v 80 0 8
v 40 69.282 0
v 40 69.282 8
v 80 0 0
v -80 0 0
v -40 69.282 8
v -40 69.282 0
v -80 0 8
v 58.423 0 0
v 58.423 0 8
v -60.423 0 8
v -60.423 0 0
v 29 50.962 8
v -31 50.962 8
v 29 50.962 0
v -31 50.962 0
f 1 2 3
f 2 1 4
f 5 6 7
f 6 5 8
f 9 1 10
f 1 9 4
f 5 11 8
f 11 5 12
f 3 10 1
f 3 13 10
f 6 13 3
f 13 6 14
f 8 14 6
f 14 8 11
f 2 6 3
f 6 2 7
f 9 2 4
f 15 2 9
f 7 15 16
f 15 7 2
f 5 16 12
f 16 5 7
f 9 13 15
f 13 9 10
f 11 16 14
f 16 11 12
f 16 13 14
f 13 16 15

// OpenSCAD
r         = 80;
thickness =  8;

module half_hex() {
    linear_extrude(thickness) {
        polygon([
            [-r, 0 ],
            [-r/2, r*sin(60)],
            [+r/2, r*sin(60)],
            [r, 0],
        ]);
    }
}

difference() {
    half_hex();
    translate([-1, -1, -1]) scale([0.75, 0.75, 1.5]) half_hex();
}
